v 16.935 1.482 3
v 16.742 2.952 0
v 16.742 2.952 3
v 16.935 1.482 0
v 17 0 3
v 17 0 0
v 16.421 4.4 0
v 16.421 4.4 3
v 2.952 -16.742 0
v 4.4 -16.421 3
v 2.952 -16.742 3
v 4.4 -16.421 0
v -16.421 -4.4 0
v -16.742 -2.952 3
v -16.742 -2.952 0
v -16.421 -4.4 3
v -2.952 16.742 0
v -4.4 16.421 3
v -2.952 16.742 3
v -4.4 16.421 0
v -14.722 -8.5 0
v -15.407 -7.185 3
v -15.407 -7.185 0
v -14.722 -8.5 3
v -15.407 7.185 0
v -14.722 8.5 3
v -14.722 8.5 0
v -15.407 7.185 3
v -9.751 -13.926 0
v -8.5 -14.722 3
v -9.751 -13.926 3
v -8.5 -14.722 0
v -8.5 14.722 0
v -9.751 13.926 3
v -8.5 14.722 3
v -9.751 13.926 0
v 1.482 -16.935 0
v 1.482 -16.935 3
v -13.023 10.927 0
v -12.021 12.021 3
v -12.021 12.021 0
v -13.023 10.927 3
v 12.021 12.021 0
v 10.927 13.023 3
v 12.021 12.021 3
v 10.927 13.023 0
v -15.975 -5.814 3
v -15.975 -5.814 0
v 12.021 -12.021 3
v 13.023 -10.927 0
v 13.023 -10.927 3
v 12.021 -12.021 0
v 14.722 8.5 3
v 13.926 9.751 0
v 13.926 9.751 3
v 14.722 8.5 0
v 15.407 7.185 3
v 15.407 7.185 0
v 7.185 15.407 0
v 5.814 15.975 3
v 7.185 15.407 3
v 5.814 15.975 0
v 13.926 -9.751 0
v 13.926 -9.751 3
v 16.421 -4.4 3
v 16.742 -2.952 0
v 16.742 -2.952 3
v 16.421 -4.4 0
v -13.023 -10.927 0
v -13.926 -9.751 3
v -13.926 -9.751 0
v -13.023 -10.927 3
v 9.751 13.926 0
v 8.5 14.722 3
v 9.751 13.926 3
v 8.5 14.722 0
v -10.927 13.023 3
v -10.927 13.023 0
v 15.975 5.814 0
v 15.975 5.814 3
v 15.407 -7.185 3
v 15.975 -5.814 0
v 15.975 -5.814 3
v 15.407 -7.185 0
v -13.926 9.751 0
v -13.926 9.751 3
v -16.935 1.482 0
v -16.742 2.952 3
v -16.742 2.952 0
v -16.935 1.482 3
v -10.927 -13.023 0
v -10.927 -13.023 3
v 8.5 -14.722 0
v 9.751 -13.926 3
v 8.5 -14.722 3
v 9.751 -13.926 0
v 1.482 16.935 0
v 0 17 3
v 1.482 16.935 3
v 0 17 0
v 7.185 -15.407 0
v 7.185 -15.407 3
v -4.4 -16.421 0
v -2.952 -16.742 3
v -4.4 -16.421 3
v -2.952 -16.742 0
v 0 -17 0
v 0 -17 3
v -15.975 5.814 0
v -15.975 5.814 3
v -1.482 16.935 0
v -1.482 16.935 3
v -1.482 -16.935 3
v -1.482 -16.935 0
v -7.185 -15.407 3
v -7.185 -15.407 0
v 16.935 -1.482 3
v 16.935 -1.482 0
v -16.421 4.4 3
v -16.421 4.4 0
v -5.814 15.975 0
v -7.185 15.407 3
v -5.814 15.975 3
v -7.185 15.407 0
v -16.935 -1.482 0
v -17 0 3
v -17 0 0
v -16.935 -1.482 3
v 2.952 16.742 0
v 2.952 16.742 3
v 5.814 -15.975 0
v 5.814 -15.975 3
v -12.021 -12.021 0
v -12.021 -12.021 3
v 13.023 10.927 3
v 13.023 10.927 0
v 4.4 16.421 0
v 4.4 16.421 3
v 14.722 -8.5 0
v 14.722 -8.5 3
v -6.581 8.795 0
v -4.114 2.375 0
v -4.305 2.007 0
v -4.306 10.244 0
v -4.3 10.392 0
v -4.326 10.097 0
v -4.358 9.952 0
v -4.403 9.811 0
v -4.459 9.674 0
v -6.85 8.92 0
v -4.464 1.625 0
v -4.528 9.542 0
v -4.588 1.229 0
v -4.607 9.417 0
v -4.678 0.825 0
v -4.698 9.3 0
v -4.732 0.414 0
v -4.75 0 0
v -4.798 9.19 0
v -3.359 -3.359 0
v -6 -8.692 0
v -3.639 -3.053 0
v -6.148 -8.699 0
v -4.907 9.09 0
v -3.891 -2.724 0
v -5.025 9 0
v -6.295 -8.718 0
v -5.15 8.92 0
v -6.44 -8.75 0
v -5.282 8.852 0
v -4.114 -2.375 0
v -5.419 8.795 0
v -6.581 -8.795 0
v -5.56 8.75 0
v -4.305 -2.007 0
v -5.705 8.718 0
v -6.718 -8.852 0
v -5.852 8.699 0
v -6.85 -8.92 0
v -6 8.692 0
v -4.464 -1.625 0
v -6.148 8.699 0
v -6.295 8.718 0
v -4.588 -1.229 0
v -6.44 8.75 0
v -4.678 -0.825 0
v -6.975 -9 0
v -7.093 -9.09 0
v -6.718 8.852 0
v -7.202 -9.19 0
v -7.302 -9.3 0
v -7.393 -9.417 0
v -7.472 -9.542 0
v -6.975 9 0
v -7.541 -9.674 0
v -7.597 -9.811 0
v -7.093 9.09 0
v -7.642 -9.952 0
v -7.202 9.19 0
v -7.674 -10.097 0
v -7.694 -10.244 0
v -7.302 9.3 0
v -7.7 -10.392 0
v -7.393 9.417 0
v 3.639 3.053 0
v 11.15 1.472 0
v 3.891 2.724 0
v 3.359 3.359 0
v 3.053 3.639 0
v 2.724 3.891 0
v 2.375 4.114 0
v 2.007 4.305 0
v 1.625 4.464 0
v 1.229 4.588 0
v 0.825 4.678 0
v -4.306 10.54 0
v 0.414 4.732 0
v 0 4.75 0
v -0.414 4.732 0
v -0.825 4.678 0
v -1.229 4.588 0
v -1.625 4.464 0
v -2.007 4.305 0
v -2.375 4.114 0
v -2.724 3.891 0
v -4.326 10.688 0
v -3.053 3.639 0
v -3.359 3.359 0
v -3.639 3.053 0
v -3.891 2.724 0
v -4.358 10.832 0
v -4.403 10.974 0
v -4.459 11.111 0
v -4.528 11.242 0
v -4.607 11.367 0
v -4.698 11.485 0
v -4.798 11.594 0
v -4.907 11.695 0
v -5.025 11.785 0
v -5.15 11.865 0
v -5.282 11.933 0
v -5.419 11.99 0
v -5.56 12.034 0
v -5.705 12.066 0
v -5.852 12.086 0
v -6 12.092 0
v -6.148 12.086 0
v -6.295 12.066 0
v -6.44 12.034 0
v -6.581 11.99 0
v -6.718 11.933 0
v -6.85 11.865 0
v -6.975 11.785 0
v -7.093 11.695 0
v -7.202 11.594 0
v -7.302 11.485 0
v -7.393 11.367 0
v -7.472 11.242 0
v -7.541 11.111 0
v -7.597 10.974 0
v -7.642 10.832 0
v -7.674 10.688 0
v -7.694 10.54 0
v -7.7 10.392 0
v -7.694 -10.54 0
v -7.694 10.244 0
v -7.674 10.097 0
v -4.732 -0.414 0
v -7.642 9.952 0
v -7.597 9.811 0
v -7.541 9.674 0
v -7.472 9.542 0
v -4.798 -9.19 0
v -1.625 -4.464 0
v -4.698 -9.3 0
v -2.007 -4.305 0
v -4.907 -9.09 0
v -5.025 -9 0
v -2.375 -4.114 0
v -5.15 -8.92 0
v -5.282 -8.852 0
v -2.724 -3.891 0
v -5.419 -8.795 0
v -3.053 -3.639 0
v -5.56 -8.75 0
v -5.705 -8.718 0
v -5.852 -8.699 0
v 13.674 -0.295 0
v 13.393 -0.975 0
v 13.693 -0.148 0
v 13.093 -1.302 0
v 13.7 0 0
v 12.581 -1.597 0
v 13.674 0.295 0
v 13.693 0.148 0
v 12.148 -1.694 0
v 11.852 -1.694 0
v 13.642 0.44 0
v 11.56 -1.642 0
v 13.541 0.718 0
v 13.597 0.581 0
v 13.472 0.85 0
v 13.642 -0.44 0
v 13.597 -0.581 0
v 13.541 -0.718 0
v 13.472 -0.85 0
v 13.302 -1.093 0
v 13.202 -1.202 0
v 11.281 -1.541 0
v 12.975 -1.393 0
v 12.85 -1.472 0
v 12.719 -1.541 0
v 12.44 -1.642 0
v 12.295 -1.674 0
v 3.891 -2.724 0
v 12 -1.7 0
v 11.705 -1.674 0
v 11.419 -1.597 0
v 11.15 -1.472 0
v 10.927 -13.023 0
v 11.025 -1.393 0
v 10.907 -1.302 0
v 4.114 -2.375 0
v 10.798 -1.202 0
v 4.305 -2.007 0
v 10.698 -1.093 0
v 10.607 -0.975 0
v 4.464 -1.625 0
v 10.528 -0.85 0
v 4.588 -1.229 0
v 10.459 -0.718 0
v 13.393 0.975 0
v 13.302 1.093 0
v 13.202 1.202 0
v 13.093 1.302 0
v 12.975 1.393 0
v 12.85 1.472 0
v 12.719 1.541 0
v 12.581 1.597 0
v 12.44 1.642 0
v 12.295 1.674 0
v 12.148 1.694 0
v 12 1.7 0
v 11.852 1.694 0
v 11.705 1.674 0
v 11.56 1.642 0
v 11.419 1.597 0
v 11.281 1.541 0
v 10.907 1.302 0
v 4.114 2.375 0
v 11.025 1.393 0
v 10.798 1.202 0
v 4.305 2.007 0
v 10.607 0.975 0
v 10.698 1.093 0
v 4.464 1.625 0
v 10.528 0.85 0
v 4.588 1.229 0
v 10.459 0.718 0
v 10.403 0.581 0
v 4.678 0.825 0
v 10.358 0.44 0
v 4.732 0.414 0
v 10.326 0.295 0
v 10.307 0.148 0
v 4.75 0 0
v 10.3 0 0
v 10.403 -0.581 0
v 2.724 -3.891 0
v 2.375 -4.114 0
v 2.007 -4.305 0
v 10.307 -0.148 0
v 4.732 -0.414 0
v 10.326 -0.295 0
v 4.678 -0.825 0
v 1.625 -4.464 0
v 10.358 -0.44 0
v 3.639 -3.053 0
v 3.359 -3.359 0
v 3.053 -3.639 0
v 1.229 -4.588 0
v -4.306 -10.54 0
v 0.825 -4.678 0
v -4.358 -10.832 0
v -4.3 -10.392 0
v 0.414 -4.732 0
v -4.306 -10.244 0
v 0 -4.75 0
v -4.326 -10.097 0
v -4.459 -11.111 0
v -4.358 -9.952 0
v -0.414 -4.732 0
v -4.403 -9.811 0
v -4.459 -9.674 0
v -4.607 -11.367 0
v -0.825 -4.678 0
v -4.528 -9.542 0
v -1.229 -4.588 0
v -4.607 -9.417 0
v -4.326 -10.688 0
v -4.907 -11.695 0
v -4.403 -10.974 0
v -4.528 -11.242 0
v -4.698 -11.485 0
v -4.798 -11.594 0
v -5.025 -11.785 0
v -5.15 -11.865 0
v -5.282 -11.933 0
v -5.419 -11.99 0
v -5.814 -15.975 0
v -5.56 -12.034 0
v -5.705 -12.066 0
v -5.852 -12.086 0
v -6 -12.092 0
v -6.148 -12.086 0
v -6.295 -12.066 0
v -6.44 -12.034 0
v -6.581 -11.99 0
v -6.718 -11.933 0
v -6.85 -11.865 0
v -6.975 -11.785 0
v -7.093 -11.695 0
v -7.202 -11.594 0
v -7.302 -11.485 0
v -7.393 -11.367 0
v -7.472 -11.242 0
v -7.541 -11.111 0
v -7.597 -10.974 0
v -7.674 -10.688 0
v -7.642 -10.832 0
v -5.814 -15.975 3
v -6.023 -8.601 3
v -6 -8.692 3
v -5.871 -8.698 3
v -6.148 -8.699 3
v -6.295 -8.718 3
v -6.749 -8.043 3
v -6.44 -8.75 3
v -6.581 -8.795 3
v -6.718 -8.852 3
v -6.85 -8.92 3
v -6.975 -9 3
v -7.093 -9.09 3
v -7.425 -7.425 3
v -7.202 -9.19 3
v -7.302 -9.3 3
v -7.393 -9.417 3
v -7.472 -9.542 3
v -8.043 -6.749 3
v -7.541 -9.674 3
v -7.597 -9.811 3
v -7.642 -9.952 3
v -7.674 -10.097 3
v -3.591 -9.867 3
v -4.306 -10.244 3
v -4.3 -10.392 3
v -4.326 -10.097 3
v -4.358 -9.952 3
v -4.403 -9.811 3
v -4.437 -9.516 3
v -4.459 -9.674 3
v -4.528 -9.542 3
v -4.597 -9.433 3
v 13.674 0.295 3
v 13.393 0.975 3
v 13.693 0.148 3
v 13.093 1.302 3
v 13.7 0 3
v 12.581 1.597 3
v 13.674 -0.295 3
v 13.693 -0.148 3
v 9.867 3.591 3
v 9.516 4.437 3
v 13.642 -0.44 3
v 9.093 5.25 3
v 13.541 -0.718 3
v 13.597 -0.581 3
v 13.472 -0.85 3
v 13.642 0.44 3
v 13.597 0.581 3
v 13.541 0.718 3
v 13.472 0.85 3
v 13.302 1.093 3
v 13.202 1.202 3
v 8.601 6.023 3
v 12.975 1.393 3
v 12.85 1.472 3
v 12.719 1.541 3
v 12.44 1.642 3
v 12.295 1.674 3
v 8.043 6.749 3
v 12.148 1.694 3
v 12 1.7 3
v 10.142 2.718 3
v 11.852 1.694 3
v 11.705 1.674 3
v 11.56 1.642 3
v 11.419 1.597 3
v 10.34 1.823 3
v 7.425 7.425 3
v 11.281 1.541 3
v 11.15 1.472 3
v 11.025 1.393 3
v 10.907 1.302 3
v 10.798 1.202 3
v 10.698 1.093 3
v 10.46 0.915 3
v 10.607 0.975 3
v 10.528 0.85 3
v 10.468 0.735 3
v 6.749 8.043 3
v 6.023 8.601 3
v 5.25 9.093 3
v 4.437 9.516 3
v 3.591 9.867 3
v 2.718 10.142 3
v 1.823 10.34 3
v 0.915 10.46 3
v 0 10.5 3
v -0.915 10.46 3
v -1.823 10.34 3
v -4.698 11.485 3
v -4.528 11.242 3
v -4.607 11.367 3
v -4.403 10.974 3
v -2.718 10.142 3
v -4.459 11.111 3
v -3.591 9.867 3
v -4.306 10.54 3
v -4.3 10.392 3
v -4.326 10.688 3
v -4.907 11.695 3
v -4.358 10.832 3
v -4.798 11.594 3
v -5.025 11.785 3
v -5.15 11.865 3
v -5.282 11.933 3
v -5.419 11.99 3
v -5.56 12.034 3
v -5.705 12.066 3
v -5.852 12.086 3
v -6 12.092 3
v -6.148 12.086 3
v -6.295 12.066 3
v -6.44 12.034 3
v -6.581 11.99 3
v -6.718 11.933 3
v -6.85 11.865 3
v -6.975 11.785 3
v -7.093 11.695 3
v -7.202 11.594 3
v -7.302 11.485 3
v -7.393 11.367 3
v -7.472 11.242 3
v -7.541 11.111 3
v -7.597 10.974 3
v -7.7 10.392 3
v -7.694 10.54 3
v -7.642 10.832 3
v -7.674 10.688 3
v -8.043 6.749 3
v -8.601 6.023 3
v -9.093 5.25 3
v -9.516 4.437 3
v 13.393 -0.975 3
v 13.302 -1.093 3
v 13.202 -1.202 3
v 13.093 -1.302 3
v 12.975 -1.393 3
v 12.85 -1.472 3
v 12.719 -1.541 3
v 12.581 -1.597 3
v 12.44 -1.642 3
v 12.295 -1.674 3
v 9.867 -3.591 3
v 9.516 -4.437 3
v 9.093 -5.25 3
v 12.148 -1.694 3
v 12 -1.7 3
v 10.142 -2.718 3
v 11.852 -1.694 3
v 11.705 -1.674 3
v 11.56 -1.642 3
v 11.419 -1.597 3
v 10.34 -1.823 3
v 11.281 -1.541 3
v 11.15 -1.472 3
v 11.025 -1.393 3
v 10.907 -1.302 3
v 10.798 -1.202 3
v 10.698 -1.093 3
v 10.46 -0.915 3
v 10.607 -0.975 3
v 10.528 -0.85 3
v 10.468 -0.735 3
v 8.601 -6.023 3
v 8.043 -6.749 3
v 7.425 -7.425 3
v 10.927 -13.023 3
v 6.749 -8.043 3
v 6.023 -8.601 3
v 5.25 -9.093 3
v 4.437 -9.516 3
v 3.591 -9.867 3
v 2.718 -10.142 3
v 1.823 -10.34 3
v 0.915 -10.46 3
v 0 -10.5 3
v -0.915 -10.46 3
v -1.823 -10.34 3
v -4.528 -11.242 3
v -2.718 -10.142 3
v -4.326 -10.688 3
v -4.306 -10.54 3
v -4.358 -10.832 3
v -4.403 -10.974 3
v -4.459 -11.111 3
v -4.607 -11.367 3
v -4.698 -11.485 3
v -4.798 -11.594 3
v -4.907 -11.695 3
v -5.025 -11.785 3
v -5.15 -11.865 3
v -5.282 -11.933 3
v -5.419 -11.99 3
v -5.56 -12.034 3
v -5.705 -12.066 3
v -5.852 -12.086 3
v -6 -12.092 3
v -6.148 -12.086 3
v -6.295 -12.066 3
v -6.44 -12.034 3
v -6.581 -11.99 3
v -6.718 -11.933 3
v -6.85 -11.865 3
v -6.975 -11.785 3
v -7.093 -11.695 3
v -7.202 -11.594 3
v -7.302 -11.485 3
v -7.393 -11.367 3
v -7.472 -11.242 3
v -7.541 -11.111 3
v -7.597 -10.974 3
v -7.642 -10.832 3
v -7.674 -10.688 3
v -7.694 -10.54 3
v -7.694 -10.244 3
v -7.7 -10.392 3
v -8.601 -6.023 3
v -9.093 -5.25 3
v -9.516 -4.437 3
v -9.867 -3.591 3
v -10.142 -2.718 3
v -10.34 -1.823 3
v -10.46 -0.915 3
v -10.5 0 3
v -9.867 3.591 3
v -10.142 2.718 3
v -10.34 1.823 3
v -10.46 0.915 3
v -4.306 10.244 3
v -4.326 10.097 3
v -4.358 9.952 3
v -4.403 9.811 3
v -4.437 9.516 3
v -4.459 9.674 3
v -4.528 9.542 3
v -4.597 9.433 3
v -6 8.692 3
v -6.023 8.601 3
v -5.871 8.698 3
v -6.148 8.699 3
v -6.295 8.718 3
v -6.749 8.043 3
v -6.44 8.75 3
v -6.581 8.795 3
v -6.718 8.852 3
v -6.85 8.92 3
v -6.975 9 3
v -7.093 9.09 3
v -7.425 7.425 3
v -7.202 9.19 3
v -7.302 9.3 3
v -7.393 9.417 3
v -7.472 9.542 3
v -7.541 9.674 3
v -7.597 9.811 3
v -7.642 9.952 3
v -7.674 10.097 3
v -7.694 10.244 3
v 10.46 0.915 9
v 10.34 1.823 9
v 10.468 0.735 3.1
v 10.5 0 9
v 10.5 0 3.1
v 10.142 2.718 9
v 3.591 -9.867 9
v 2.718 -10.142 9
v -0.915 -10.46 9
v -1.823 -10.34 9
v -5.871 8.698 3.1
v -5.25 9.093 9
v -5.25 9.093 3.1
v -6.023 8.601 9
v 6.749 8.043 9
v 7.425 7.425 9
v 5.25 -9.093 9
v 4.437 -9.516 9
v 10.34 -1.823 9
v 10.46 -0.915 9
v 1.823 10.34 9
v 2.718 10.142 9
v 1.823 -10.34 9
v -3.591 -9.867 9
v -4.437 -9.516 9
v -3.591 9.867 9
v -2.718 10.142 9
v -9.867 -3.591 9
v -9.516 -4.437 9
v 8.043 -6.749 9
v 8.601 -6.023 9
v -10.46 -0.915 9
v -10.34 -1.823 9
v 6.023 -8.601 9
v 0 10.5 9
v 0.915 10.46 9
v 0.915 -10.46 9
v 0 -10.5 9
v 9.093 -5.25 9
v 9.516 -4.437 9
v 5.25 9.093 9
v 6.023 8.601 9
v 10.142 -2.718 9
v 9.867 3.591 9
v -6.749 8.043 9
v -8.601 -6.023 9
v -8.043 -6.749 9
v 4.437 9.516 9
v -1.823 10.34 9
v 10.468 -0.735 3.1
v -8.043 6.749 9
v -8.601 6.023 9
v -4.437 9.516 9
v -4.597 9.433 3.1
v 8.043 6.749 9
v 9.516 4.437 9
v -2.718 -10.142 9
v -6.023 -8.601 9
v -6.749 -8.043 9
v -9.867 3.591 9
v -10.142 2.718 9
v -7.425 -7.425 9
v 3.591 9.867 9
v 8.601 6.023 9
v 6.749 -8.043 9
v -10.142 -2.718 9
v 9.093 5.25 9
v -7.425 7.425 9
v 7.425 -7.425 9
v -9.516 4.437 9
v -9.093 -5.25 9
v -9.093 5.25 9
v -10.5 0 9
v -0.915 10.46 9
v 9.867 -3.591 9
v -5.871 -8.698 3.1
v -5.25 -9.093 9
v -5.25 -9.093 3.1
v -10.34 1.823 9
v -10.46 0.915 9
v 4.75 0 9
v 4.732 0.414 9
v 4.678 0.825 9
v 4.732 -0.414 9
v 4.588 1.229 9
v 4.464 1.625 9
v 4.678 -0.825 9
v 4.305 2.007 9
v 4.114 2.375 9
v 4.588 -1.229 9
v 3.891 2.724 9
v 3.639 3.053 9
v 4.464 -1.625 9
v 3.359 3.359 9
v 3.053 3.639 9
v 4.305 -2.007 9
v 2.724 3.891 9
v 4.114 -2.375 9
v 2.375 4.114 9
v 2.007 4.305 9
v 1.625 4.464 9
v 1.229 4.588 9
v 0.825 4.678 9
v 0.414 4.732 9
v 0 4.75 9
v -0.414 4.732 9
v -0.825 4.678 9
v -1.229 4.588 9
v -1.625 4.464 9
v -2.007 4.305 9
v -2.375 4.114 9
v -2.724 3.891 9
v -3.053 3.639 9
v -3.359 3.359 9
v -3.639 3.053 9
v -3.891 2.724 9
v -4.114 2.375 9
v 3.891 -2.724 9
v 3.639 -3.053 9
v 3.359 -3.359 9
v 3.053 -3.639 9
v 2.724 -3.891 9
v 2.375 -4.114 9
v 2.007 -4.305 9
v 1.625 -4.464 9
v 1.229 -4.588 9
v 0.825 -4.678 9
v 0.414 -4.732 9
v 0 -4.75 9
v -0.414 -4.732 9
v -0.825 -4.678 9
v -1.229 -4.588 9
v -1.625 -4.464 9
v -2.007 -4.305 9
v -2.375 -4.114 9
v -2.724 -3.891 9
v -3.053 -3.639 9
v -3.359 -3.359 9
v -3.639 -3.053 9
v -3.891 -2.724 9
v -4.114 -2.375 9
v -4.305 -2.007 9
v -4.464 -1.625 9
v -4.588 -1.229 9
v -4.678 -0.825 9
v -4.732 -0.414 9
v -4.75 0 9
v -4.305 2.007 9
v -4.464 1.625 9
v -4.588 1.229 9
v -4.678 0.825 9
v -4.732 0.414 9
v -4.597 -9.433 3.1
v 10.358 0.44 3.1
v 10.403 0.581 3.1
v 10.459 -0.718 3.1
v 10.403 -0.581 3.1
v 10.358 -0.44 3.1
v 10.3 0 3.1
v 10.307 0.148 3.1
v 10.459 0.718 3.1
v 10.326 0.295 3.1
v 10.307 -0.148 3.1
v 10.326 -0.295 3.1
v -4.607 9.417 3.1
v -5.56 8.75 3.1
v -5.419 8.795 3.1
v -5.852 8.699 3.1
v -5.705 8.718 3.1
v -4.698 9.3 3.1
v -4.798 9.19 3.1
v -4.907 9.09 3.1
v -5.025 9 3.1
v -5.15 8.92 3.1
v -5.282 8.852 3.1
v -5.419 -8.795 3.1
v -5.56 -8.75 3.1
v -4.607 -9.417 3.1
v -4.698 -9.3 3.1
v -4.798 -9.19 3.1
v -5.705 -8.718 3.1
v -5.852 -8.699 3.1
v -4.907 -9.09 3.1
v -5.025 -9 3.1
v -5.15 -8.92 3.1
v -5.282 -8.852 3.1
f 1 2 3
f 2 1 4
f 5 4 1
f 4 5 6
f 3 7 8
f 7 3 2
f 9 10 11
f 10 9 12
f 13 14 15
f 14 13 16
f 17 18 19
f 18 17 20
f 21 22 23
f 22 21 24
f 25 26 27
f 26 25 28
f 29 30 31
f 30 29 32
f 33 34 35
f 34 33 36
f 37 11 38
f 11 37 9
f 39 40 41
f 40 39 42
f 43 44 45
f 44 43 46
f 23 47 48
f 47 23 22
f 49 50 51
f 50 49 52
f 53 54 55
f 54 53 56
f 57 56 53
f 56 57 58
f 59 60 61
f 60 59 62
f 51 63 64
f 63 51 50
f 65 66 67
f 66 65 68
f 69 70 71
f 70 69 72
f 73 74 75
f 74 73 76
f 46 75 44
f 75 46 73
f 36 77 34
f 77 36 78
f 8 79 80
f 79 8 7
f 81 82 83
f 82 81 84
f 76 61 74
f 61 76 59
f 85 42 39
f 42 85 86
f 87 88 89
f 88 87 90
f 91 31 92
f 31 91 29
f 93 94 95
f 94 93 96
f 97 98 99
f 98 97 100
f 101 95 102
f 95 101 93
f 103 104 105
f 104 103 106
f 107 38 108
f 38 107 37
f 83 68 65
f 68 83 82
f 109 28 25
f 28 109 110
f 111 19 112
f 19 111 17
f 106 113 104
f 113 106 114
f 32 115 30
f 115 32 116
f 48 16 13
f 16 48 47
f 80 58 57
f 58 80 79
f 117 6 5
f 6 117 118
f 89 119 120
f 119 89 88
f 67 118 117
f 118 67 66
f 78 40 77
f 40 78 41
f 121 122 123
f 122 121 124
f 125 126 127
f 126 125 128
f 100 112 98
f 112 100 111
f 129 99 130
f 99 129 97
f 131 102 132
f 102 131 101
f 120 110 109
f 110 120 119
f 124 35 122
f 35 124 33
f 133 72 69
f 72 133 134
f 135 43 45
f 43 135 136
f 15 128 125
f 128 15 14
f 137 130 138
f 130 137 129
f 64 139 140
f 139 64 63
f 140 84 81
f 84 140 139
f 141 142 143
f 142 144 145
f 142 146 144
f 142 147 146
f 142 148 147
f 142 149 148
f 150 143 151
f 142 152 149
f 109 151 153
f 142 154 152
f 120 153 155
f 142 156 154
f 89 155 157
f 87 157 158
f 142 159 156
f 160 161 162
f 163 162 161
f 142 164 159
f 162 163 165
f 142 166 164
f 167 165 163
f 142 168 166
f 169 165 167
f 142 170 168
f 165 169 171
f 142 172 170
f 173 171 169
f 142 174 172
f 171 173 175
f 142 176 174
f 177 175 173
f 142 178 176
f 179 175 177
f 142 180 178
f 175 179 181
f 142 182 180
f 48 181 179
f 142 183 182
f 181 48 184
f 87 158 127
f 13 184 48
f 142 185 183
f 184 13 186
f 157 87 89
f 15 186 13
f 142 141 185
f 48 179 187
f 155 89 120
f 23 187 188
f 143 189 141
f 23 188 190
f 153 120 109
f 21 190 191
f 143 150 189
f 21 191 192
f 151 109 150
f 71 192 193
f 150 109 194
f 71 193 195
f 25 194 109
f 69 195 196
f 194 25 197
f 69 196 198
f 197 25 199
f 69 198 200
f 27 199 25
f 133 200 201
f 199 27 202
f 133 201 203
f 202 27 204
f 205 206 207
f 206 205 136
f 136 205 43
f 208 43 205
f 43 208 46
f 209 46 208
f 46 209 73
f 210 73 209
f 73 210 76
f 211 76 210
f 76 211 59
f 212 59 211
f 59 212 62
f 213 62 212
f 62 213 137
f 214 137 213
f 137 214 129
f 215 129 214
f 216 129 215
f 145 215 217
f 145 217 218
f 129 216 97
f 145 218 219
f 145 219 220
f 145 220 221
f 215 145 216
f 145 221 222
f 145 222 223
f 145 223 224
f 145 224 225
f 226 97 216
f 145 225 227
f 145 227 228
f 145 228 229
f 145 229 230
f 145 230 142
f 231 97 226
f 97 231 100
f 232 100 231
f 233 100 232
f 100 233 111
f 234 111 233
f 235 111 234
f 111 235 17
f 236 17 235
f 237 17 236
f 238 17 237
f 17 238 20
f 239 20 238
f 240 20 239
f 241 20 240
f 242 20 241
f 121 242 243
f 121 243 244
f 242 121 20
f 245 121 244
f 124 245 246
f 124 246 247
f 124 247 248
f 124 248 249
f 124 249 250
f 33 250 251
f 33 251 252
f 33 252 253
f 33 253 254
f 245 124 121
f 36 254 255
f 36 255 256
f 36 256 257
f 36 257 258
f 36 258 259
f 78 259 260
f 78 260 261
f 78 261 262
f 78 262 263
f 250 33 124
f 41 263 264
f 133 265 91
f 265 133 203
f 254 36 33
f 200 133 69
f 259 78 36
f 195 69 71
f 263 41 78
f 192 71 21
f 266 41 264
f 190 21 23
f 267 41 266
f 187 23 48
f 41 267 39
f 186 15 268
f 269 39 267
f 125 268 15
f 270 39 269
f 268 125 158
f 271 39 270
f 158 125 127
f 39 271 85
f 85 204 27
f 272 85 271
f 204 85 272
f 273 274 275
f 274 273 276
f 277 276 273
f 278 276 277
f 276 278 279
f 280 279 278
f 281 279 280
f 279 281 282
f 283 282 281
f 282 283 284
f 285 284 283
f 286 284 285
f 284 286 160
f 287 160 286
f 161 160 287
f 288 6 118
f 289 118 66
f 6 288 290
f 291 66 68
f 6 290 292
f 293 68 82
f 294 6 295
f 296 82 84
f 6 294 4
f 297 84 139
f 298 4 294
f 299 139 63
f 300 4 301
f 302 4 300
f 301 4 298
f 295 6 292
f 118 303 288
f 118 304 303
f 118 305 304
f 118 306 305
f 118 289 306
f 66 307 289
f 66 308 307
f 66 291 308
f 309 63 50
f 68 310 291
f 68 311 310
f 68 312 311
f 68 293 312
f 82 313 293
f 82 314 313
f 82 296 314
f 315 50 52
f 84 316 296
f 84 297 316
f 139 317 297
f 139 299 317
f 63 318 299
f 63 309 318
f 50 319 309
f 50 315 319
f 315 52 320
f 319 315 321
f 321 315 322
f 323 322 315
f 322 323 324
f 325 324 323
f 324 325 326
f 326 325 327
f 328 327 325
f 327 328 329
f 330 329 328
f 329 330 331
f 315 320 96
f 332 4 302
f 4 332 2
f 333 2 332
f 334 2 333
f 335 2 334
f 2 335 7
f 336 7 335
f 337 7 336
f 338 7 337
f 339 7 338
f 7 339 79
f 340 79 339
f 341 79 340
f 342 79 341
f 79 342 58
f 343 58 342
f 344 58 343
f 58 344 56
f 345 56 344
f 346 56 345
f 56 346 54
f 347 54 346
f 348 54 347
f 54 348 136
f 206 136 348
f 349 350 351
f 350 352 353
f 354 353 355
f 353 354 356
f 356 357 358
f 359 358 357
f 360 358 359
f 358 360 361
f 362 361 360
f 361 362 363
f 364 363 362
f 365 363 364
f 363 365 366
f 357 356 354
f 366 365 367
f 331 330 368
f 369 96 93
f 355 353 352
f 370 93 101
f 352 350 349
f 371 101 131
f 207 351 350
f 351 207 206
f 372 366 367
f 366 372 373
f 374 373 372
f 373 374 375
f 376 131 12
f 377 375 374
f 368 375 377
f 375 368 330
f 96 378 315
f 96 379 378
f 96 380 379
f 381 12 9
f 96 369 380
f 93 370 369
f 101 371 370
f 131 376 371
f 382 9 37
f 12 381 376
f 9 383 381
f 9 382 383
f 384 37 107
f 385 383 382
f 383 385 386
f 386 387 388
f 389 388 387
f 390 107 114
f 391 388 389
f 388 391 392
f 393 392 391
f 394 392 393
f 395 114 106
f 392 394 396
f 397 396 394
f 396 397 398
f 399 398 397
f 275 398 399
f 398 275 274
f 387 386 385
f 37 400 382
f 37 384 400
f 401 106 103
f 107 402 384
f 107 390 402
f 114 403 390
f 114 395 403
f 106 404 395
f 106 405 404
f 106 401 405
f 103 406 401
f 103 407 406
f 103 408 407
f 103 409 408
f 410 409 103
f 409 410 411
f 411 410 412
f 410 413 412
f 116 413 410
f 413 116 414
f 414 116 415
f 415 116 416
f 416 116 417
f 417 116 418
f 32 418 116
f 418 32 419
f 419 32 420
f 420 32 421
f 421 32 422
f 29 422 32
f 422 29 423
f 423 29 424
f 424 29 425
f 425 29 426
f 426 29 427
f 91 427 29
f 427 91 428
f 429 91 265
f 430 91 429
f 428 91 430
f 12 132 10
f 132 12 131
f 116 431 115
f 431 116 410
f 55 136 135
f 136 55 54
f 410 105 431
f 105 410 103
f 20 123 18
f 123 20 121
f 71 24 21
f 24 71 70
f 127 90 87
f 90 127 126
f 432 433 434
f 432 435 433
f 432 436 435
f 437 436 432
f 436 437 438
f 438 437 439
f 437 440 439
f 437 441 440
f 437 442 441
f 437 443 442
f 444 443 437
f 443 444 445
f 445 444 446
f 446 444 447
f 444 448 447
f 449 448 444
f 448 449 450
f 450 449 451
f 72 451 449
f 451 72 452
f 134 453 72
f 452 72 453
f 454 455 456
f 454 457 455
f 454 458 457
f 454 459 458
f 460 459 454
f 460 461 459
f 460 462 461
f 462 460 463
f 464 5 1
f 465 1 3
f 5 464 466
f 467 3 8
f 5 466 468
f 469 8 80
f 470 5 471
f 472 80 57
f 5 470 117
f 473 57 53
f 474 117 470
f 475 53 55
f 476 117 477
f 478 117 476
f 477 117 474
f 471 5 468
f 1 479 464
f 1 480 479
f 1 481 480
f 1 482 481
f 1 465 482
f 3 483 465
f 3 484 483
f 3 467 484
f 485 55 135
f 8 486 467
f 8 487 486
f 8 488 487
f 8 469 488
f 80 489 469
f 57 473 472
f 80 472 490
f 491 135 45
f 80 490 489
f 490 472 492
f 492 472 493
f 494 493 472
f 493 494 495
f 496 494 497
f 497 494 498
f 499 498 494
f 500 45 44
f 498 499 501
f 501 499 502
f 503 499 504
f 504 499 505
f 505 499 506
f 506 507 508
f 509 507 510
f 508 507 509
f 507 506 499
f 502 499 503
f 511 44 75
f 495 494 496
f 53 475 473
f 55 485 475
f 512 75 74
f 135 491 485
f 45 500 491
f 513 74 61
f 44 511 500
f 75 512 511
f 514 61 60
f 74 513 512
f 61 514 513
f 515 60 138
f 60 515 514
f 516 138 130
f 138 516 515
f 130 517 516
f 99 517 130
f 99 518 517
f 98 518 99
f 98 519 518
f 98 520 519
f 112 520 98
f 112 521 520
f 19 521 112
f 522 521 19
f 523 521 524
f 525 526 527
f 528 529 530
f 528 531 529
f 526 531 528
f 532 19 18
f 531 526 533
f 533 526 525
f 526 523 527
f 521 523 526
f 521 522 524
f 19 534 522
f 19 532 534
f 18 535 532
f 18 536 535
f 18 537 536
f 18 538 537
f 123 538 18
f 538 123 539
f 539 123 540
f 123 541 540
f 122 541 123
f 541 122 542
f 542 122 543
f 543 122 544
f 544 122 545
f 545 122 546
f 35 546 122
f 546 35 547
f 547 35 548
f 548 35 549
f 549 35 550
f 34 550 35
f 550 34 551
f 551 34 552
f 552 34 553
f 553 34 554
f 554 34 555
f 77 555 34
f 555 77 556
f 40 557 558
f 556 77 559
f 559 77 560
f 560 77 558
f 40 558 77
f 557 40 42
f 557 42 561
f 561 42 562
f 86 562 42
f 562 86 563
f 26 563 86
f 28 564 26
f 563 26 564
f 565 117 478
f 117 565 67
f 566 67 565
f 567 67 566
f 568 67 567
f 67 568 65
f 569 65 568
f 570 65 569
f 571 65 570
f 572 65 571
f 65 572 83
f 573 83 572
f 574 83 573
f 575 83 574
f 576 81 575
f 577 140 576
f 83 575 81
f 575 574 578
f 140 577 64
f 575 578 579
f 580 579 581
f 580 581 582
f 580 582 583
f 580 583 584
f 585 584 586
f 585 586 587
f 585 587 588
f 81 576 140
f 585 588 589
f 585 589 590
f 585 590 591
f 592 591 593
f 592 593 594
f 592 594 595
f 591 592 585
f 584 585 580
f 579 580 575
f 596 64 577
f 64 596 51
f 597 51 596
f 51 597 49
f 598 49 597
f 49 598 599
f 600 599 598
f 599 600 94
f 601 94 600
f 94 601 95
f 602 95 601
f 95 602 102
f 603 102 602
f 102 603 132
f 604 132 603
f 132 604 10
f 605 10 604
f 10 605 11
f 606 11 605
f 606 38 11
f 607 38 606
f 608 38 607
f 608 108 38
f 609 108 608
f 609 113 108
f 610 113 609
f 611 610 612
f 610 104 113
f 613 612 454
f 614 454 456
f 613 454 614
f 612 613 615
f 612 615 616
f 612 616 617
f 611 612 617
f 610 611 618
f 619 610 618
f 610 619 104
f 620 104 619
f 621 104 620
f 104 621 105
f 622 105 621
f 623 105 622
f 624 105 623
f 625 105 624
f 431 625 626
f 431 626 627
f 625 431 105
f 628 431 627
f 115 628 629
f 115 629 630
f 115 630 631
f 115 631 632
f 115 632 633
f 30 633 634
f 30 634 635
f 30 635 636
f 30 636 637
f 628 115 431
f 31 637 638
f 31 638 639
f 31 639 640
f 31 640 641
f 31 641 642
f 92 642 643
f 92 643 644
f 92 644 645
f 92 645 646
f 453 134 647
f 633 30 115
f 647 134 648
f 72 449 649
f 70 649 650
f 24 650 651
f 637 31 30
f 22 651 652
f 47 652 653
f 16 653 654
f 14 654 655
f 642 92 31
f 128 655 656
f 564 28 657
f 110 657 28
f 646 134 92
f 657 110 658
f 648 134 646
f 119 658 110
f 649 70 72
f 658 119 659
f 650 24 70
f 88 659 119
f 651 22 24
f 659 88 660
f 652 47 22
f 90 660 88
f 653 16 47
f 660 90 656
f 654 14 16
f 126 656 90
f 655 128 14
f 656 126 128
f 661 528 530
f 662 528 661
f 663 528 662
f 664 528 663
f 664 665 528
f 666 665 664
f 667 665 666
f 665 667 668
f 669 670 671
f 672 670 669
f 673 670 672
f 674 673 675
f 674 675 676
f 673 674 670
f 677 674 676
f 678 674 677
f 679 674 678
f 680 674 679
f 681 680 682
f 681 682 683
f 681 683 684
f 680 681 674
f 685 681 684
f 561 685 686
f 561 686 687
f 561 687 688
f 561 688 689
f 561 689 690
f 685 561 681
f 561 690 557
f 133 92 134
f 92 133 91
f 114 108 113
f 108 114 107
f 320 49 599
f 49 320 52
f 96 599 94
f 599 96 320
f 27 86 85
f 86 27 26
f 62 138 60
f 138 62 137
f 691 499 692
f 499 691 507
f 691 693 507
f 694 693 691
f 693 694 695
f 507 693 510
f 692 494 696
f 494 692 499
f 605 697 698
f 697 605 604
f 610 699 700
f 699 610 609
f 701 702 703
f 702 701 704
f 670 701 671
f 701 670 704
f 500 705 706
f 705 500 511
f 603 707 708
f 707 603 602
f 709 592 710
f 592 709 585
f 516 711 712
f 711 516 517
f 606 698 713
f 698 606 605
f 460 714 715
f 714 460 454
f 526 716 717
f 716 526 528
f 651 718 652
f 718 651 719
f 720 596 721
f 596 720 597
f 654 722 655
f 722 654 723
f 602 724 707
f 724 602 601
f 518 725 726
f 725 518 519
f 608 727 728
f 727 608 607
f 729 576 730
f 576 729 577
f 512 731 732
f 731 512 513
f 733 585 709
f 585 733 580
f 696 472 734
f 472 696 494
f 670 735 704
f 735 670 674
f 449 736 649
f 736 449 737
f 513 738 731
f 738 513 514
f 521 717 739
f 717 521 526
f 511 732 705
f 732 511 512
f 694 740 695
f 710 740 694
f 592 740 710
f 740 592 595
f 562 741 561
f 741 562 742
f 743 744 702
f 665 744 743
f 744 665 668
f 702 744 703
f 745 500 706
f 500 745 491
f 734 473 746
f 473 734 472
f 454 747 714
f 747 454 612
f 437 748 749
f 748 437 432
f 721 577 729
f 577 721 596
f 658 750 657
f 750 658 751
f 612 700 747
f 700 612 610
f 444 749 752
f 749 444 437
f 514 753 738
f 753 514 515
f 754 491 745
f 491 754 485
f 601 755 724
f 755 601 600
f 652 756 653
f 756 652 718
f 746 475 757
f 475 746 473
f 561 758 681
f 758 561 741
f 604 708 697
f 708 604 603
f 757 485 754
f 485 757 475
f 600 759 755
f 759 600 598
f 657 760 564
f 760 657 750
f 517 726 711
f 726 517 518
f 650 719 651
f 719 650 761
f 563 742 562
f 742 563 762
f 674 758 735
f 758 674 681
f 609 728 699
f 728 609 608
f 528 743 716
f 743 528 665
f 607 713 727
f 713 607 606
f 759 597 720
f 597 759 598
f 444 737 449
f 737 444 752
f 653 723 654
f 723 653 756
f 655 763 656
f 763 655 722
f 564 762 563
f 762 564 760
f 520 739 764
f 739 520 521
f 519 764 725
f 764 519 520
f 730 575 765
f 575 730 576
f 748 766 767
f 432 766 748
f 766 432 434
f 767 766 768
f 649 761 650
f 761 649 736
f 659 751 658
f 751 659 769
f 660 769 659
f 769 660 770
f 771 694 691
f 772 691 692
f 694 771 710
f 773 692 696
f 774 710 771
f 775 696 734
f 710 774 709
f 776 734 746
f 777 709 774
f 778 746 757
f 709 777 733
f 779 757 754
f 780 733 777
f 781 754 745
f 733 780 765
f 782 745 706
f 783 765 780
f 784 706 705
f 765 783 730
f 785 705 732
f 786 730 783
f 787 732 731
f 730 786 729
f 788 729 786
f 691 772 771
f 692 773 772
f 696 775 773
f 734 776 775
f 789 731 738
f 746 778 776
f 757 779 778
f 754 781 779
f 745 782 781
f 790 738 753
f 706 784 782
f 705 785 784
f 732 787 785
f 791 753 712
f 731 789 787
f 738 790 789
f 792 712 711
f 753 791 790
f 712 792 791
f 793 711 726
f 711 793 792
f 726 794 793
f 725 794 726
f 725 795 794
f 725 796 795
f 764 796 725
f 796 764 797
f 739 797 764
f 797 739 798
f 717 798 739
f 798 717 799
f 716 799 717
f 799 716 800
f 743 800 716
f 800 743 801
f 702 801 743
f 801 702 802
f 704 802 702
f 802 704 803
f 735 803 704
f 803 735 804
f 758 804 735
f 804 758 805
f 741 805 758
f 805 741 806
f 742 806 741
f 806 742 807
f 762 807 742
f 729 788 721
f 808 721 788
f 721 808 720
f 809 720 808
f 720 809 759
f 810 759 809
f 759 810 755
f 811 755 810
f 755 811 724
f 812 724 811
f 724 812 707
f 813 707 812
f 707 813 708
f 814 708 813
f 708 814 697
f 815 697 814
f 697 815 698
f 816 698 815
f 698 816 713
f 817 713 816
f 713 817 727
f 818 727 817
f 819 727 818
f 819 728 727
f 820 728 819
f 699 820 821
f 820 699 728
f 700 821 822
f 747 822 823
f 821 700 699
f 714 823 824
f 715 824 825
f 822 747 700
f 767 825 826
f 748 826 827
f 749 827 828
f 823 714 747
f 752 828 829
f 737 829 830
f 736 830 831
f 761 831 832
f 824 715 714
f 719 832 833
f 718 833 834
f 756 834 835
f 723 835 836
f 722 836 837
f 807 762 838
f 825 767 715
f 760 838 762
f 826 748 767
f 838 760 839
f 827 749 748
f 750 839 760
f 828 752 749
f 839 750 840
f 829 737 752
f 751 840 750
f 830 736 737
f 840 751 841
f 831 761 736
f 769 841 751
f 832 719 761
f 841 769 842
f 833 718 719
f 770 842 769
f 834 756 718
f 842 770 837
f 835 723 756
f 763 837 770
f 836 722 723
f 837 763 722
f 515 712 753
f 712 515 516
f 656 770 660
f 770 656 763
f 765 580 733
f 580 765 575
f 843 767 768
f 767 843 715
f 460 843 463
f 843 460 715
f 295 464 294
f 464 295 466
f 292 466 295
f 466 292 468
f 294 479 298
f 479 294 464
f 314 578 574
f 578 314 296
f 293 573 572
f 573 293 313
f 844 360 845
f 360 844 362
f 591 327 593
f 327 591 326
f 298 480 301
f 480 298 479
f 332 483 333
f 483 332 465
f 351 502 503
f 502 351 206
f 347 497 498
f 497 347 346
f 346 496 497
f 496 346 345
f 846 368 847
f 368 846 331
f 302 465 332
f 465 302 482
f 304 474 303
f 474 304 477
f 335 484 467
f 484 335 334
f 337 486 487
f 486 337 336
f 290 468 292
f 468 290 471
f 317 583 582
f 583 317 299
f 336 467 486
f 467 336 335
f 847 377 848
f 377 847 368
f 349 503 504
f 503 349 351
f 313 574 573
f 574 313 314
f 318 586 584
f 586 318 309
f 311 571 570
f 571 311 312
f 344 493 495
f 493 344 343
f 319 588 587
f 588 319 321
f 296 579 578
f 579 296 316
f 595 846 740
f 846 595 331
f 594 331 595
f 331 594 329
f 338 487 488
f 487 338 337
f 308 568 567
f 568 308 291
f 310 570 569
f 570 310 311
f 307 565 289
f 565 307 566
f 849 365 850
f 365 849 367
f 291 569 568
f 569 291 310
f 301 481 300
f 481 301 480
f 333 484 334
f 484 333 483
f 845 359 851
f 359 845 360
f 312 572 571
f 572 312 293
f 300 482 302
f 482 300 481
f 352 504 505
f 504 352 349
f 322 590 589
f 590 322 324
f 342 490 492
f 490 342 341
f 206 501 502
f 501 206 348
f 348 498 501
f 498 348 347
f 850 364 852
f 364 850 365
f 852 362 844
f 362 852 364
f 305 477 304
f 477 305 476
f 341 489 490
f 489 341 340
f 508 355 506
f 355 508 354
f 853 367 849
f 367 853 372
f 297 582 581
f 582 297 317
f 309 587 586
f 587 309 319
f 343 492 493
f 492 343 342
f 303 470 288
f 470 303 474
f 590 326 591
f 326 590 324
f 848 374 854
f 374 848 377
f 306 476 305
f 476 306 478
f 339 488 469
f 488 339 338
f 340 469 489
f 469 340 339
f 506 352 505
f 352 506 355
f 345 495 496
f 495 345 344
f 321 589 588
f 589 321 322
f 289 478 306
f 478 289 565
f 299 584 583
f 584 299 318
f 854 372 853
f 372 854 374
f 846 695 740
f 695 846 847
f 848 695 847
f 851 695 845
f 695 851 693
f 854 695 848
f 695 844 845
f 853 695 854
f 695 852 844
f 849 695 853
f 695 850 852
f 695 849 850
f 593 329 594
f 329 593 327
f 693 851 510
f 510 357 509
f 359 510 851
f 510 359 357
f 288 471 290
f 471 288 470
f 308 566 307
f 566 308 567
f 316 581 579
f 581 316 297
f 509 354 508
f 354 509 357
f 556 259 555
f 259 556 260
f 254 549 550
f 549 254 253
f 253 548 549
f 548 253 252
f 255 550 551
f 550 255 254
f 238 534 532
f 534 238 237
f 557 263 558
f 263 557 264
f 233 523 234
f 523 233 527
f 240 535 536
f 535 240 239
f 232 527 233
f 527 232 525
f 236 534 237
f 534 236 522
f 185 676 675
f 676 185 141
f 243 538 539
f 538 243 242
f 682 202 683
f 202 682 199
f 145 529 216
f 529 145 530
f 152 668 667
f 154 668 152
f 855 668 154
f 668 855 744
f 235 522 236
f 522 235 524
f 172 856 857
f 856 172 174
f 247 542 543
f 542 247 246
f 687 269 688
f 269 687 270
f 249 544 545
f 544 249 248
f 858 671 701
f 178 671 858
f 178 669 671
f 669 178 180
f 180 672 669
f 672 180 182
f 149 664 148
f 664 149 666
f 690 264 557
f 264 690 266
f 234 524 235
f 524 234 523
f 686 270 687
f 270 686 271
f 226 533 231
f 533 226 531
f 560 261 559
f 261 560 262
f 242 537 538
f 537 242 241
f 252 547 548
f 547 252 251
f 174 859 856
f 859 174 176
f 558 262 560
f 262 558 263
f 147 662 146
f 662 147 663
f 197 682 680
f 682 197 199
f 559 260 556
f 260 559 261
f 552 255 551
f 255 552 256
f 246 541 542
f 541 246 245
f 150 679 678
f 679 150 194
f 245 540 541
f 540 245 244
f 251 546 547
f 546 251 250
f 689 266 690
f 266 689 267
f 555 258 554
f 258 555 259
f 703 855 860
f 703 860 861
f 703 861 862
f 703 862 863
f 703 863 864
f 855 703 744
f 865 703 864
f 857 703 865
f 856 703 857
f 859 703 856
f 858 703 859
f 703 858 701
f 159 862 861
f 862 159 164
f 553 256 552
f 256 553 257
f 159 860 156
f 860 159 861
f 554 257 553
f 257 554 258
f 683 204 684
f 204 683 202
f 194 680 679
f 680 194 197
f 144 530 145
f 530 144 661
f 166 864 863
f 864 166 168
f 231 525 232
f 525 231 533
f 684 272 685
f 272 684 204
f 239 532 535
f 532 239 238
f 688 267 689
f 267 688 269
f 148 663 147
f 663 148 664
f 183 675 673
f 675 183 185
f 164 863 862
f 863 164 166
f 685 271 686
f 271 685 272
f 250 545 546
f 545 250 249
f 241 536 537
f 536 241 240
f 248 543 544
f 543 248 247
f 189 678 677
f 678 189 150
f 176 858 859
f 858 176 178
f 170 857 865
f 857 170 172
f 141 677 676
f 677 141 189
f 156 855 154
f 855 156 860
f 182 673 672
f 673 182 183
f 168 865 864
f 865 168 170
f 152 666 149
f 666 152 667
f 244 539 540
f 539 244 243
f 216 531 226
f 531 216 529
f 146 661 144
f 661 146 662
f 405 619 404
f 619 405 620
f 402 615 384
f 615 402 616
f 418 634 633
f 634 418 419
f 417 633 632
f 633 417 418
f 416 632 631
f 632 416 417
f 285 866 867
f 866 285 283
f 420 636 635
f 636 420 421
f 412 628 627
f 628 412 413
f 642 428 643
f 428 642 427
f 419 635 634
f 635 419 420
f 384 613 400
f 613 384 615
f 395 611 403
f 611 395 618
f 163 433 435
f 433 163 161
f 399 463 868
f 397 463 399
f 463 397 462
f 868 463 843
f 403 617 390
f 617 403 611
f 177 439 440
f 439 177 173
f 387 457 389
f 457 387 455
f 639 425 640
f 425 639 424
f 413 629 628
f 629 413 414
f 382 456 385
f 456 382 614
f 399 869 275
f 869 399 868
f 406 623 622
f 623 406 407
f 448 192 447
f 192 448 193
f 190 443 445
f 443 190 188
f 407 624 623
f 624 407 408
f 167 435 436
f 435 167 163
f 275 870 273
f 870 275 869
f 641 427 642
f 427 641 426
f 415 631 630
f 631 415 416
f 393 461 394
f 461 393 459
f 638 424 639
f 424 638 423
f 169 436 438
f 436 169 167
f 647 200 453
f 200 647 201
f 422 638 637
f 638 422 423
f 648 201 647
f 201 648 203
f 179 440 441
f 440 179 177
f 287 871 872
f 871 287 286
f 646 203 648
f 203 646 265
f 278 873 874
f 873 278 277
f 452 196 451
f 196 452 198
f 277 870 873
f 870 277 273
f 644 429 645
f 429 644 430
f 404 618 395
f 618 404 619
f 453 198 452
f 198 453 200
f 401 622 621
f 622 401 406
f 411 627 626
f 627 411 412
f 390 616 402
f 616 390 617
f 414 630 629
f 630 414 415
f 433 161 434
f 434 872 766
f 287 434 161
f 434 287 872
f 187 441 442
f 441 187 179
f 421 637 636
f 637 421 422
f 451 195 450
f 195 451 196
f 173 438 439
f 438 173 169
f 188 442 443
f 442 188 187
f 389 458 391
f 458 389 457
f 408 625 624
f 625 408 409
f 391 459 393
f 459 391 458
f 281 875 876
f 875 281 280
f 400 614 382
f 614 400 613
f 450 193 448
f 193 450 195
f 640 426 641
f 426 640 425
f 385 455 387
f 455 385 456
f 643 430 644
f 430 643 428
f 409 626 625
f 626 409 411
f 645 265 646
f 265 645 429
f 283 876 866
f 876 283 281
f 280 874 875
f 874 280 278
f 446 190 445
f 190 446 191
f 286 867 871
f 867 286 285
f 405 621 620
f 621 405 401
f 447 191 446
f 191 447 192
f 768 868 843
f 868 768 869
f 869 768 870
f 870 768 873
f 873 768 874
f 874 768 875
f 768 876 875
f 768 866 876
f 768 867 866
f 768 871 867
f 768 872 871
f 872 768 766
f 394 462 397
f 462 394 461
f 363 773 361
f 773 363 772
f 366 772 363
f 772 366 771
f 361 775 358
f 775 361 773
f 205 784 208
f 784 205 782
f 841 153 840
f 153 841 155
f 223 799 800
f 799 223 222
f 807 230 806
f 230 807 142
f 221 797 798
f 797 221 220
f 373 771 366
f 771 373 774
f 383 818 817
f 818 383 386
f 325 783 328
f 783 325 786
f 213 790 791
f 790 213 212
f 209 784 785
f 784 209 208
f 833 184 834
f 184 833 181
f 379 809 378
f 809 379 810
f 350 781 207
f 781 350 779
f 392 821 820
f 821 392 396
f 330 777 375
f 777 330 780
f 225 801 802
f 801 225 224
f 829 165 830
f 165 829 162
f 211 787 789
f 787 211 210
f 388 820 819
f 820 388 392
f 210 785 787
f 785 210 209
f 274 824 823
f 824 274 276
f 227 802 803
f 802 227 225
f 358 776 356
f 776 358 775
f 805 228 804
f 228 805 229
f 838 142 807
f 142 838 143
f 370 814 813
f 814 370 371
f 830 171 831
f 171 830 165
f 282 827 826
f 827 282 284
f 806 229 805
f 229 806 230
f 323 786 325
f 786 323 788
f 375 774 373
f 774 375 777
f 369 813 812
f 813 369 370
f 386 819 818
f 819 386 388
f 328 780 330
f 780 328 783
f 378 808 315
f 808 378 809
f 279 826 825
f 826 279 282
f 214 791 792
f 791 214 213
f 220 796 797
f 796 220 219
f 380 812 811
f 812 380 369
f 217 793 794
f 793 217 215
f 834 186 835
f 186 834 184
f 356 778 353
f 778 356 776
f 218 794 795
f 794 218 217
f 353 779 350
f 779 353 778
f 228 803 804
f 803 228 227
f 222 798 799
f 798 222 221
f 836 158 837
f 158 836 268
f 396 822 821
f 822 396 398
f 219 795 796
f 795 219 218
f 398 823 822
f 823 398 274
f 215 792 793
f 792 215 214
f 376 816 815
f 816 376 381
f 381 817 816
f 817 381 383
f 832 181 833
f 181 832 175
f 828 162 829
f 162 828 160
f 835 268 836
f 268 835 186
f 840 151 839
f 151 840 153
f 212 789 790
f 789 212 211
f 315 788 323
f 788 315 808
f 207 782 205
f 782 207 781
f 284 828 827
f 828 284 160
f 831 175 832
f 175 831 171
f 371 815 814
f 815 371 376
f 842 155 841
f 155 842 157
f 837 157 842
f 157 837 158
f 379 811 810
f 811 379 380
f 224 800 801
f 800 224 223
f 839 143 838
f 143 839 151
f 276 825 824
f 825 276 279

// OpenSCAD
// file: parameters.scad
// AFPM-Desk-v4 PoleShoe shared parameters (mm)
// SSDR dual-rotor axial-flux PM learning generator:
// mild-steel back-iron + mild-steel pole shoes under each magnet.
// Faraday induction education only — not free-energy / overunity.
// Target: Anycubic Kobra 3 Max, 0.4 mm nozzle, 0.2 mm layers, PETG.

$fn = 72;

// --- Printer / FDM assumptions ---
nozzle = 0.4;
layer = 0.2;
wall = 1.6;                 // load-bearing ~4 perimeters
housing_wall = 2.4;
clearance_slip = 0.35;      // shaft slip fit
clearance_loose = 0.55;
press_interference = 0.15;  // bearing pocket undersize total (coupon-test)
magnet_pocket_xy = 0.25;    // +0.25 mm on diameter
magnet_pocket_z = 0.15;     // +0.15 mm depth
elephant_foot = 0.5;

// --- Magnets (N42 Neo discs) — Austin's Ø20×5 stock ---
magnet_d = 20;
magnet_h = 5;
magnet_count = 12;          // per rotor (12+12 total)
magnet_pcd = 90;            // center pitch; ~3.3 mm edge gap between discs

// --- Mild-steel pole shoes (flux concentrators under each magnet) ---
// Slightly smaller OD than magnet teaches concentration / reluctance.
pole_shoe_d = 18;
pole_shoe_h = 2.0;          // purchased mild-steel disc or punched blank
pole_shoe_pocket_xy = 0.30;
pole_shoe_pocket_z = 0.15;

// --- Steel back-iron (purchased mild steel disc behind pole-shoe ring) ---
steel_od = 118;
steel_id = 16;              // clearance around hub boss
steel_h = 1.5;              // 1.5–2.0 mm mild steel OK
steel_recess_clearance = 0.3;

// --- Rotor printed disc ---
rotor_od = 130;
rotor_hub_bore = 12;        // seats on shaft_hub boss
rotor_thickness = 11;       // magnet + pole shoe + plastic floor + steel recess
magnet_pocket_depth = magnet_h + magnet_pocket_z;
pole_shoe_pocket_depth = pole_shoe_h + pole_shoe_pocket_z;
steel_recess_depth = steel_h + 0.2;

// --- Stator (coreless, between rotors) — 9 coils for 3-phase ---
stator_od = 140;
stator_id = 30;
stator_thickness = 12;
coil_count = 9;
coil_slot_w = 22;
coil_slot_l = 28;           // radial length of pocket
coil_slot_depth = 10;
coil_pcd = 90;
stator_pillar_pcd = 118;    // M4 pillar holes

// --- Coil bobbin (stays in stator) ---
former_core_w = 16;
former_core_l = 24;
former_flange = 2.5;
former_wind_h = 9.2;        // fits coil_slot_depth - margin

// --- Shaft / bearings ---
shaft_d = 8;
bearing_od = 22;            // 608-2RS / 608ZZ
bearing_id = 8;
bearing_h = 7;
bearing_seat_od = bearing_od - press_interference; // ~21.85; coupon-test

// --- Base / frame ---
base_w = 200;
base_d = 180;
base_h = 8;
post_h = 78;
post_spacing = 145;         // Y distance between bearing post centers (thicker stack)
post_d = 36;

// --- Axial stack targets ---
// crank | brg | hub+rotorA+steel | air | stator | air | steel+rotorB+hub | brg
air_gap_nominal = 1.75;     // mechanical per side magnet↔coil face (1.5–2.0)

// --- Crank ---
crank_arm_len = 90;
crank_arm_w = 18;
crank_arm_t = 10;
handle_d = 14;
handle_len = 45;

// --- Electronics tray ---
tray_w = 80;
tray_d = 55;
tray_h = 14;

// --- Fasteners ---
m3_clear = 3.4;
m3_tap = 2.5;
m4_clear = 4.3;
// main file
include <parameters.scad>
// Print 2. Retains 608ZZ in post seats.

module bearing_cap() {
  difference() {
    union() {
      cylinder(h=3, d=post_d - 2);
      cylinder(h=bearing_h + 2, d=bearing_od - 1);
    }
    translate([0,0,-0.1])
      cylinder(h=bearing_h + 2.2, d=shaft_d + 1.5);
    for (a = [0,120,240]) {
      rotate([0,0,a])
        translate([12, 0, -0.1])
          cylinder(h=3.2, d=m3_clear);
    }
  }
}

bearing_cap();
